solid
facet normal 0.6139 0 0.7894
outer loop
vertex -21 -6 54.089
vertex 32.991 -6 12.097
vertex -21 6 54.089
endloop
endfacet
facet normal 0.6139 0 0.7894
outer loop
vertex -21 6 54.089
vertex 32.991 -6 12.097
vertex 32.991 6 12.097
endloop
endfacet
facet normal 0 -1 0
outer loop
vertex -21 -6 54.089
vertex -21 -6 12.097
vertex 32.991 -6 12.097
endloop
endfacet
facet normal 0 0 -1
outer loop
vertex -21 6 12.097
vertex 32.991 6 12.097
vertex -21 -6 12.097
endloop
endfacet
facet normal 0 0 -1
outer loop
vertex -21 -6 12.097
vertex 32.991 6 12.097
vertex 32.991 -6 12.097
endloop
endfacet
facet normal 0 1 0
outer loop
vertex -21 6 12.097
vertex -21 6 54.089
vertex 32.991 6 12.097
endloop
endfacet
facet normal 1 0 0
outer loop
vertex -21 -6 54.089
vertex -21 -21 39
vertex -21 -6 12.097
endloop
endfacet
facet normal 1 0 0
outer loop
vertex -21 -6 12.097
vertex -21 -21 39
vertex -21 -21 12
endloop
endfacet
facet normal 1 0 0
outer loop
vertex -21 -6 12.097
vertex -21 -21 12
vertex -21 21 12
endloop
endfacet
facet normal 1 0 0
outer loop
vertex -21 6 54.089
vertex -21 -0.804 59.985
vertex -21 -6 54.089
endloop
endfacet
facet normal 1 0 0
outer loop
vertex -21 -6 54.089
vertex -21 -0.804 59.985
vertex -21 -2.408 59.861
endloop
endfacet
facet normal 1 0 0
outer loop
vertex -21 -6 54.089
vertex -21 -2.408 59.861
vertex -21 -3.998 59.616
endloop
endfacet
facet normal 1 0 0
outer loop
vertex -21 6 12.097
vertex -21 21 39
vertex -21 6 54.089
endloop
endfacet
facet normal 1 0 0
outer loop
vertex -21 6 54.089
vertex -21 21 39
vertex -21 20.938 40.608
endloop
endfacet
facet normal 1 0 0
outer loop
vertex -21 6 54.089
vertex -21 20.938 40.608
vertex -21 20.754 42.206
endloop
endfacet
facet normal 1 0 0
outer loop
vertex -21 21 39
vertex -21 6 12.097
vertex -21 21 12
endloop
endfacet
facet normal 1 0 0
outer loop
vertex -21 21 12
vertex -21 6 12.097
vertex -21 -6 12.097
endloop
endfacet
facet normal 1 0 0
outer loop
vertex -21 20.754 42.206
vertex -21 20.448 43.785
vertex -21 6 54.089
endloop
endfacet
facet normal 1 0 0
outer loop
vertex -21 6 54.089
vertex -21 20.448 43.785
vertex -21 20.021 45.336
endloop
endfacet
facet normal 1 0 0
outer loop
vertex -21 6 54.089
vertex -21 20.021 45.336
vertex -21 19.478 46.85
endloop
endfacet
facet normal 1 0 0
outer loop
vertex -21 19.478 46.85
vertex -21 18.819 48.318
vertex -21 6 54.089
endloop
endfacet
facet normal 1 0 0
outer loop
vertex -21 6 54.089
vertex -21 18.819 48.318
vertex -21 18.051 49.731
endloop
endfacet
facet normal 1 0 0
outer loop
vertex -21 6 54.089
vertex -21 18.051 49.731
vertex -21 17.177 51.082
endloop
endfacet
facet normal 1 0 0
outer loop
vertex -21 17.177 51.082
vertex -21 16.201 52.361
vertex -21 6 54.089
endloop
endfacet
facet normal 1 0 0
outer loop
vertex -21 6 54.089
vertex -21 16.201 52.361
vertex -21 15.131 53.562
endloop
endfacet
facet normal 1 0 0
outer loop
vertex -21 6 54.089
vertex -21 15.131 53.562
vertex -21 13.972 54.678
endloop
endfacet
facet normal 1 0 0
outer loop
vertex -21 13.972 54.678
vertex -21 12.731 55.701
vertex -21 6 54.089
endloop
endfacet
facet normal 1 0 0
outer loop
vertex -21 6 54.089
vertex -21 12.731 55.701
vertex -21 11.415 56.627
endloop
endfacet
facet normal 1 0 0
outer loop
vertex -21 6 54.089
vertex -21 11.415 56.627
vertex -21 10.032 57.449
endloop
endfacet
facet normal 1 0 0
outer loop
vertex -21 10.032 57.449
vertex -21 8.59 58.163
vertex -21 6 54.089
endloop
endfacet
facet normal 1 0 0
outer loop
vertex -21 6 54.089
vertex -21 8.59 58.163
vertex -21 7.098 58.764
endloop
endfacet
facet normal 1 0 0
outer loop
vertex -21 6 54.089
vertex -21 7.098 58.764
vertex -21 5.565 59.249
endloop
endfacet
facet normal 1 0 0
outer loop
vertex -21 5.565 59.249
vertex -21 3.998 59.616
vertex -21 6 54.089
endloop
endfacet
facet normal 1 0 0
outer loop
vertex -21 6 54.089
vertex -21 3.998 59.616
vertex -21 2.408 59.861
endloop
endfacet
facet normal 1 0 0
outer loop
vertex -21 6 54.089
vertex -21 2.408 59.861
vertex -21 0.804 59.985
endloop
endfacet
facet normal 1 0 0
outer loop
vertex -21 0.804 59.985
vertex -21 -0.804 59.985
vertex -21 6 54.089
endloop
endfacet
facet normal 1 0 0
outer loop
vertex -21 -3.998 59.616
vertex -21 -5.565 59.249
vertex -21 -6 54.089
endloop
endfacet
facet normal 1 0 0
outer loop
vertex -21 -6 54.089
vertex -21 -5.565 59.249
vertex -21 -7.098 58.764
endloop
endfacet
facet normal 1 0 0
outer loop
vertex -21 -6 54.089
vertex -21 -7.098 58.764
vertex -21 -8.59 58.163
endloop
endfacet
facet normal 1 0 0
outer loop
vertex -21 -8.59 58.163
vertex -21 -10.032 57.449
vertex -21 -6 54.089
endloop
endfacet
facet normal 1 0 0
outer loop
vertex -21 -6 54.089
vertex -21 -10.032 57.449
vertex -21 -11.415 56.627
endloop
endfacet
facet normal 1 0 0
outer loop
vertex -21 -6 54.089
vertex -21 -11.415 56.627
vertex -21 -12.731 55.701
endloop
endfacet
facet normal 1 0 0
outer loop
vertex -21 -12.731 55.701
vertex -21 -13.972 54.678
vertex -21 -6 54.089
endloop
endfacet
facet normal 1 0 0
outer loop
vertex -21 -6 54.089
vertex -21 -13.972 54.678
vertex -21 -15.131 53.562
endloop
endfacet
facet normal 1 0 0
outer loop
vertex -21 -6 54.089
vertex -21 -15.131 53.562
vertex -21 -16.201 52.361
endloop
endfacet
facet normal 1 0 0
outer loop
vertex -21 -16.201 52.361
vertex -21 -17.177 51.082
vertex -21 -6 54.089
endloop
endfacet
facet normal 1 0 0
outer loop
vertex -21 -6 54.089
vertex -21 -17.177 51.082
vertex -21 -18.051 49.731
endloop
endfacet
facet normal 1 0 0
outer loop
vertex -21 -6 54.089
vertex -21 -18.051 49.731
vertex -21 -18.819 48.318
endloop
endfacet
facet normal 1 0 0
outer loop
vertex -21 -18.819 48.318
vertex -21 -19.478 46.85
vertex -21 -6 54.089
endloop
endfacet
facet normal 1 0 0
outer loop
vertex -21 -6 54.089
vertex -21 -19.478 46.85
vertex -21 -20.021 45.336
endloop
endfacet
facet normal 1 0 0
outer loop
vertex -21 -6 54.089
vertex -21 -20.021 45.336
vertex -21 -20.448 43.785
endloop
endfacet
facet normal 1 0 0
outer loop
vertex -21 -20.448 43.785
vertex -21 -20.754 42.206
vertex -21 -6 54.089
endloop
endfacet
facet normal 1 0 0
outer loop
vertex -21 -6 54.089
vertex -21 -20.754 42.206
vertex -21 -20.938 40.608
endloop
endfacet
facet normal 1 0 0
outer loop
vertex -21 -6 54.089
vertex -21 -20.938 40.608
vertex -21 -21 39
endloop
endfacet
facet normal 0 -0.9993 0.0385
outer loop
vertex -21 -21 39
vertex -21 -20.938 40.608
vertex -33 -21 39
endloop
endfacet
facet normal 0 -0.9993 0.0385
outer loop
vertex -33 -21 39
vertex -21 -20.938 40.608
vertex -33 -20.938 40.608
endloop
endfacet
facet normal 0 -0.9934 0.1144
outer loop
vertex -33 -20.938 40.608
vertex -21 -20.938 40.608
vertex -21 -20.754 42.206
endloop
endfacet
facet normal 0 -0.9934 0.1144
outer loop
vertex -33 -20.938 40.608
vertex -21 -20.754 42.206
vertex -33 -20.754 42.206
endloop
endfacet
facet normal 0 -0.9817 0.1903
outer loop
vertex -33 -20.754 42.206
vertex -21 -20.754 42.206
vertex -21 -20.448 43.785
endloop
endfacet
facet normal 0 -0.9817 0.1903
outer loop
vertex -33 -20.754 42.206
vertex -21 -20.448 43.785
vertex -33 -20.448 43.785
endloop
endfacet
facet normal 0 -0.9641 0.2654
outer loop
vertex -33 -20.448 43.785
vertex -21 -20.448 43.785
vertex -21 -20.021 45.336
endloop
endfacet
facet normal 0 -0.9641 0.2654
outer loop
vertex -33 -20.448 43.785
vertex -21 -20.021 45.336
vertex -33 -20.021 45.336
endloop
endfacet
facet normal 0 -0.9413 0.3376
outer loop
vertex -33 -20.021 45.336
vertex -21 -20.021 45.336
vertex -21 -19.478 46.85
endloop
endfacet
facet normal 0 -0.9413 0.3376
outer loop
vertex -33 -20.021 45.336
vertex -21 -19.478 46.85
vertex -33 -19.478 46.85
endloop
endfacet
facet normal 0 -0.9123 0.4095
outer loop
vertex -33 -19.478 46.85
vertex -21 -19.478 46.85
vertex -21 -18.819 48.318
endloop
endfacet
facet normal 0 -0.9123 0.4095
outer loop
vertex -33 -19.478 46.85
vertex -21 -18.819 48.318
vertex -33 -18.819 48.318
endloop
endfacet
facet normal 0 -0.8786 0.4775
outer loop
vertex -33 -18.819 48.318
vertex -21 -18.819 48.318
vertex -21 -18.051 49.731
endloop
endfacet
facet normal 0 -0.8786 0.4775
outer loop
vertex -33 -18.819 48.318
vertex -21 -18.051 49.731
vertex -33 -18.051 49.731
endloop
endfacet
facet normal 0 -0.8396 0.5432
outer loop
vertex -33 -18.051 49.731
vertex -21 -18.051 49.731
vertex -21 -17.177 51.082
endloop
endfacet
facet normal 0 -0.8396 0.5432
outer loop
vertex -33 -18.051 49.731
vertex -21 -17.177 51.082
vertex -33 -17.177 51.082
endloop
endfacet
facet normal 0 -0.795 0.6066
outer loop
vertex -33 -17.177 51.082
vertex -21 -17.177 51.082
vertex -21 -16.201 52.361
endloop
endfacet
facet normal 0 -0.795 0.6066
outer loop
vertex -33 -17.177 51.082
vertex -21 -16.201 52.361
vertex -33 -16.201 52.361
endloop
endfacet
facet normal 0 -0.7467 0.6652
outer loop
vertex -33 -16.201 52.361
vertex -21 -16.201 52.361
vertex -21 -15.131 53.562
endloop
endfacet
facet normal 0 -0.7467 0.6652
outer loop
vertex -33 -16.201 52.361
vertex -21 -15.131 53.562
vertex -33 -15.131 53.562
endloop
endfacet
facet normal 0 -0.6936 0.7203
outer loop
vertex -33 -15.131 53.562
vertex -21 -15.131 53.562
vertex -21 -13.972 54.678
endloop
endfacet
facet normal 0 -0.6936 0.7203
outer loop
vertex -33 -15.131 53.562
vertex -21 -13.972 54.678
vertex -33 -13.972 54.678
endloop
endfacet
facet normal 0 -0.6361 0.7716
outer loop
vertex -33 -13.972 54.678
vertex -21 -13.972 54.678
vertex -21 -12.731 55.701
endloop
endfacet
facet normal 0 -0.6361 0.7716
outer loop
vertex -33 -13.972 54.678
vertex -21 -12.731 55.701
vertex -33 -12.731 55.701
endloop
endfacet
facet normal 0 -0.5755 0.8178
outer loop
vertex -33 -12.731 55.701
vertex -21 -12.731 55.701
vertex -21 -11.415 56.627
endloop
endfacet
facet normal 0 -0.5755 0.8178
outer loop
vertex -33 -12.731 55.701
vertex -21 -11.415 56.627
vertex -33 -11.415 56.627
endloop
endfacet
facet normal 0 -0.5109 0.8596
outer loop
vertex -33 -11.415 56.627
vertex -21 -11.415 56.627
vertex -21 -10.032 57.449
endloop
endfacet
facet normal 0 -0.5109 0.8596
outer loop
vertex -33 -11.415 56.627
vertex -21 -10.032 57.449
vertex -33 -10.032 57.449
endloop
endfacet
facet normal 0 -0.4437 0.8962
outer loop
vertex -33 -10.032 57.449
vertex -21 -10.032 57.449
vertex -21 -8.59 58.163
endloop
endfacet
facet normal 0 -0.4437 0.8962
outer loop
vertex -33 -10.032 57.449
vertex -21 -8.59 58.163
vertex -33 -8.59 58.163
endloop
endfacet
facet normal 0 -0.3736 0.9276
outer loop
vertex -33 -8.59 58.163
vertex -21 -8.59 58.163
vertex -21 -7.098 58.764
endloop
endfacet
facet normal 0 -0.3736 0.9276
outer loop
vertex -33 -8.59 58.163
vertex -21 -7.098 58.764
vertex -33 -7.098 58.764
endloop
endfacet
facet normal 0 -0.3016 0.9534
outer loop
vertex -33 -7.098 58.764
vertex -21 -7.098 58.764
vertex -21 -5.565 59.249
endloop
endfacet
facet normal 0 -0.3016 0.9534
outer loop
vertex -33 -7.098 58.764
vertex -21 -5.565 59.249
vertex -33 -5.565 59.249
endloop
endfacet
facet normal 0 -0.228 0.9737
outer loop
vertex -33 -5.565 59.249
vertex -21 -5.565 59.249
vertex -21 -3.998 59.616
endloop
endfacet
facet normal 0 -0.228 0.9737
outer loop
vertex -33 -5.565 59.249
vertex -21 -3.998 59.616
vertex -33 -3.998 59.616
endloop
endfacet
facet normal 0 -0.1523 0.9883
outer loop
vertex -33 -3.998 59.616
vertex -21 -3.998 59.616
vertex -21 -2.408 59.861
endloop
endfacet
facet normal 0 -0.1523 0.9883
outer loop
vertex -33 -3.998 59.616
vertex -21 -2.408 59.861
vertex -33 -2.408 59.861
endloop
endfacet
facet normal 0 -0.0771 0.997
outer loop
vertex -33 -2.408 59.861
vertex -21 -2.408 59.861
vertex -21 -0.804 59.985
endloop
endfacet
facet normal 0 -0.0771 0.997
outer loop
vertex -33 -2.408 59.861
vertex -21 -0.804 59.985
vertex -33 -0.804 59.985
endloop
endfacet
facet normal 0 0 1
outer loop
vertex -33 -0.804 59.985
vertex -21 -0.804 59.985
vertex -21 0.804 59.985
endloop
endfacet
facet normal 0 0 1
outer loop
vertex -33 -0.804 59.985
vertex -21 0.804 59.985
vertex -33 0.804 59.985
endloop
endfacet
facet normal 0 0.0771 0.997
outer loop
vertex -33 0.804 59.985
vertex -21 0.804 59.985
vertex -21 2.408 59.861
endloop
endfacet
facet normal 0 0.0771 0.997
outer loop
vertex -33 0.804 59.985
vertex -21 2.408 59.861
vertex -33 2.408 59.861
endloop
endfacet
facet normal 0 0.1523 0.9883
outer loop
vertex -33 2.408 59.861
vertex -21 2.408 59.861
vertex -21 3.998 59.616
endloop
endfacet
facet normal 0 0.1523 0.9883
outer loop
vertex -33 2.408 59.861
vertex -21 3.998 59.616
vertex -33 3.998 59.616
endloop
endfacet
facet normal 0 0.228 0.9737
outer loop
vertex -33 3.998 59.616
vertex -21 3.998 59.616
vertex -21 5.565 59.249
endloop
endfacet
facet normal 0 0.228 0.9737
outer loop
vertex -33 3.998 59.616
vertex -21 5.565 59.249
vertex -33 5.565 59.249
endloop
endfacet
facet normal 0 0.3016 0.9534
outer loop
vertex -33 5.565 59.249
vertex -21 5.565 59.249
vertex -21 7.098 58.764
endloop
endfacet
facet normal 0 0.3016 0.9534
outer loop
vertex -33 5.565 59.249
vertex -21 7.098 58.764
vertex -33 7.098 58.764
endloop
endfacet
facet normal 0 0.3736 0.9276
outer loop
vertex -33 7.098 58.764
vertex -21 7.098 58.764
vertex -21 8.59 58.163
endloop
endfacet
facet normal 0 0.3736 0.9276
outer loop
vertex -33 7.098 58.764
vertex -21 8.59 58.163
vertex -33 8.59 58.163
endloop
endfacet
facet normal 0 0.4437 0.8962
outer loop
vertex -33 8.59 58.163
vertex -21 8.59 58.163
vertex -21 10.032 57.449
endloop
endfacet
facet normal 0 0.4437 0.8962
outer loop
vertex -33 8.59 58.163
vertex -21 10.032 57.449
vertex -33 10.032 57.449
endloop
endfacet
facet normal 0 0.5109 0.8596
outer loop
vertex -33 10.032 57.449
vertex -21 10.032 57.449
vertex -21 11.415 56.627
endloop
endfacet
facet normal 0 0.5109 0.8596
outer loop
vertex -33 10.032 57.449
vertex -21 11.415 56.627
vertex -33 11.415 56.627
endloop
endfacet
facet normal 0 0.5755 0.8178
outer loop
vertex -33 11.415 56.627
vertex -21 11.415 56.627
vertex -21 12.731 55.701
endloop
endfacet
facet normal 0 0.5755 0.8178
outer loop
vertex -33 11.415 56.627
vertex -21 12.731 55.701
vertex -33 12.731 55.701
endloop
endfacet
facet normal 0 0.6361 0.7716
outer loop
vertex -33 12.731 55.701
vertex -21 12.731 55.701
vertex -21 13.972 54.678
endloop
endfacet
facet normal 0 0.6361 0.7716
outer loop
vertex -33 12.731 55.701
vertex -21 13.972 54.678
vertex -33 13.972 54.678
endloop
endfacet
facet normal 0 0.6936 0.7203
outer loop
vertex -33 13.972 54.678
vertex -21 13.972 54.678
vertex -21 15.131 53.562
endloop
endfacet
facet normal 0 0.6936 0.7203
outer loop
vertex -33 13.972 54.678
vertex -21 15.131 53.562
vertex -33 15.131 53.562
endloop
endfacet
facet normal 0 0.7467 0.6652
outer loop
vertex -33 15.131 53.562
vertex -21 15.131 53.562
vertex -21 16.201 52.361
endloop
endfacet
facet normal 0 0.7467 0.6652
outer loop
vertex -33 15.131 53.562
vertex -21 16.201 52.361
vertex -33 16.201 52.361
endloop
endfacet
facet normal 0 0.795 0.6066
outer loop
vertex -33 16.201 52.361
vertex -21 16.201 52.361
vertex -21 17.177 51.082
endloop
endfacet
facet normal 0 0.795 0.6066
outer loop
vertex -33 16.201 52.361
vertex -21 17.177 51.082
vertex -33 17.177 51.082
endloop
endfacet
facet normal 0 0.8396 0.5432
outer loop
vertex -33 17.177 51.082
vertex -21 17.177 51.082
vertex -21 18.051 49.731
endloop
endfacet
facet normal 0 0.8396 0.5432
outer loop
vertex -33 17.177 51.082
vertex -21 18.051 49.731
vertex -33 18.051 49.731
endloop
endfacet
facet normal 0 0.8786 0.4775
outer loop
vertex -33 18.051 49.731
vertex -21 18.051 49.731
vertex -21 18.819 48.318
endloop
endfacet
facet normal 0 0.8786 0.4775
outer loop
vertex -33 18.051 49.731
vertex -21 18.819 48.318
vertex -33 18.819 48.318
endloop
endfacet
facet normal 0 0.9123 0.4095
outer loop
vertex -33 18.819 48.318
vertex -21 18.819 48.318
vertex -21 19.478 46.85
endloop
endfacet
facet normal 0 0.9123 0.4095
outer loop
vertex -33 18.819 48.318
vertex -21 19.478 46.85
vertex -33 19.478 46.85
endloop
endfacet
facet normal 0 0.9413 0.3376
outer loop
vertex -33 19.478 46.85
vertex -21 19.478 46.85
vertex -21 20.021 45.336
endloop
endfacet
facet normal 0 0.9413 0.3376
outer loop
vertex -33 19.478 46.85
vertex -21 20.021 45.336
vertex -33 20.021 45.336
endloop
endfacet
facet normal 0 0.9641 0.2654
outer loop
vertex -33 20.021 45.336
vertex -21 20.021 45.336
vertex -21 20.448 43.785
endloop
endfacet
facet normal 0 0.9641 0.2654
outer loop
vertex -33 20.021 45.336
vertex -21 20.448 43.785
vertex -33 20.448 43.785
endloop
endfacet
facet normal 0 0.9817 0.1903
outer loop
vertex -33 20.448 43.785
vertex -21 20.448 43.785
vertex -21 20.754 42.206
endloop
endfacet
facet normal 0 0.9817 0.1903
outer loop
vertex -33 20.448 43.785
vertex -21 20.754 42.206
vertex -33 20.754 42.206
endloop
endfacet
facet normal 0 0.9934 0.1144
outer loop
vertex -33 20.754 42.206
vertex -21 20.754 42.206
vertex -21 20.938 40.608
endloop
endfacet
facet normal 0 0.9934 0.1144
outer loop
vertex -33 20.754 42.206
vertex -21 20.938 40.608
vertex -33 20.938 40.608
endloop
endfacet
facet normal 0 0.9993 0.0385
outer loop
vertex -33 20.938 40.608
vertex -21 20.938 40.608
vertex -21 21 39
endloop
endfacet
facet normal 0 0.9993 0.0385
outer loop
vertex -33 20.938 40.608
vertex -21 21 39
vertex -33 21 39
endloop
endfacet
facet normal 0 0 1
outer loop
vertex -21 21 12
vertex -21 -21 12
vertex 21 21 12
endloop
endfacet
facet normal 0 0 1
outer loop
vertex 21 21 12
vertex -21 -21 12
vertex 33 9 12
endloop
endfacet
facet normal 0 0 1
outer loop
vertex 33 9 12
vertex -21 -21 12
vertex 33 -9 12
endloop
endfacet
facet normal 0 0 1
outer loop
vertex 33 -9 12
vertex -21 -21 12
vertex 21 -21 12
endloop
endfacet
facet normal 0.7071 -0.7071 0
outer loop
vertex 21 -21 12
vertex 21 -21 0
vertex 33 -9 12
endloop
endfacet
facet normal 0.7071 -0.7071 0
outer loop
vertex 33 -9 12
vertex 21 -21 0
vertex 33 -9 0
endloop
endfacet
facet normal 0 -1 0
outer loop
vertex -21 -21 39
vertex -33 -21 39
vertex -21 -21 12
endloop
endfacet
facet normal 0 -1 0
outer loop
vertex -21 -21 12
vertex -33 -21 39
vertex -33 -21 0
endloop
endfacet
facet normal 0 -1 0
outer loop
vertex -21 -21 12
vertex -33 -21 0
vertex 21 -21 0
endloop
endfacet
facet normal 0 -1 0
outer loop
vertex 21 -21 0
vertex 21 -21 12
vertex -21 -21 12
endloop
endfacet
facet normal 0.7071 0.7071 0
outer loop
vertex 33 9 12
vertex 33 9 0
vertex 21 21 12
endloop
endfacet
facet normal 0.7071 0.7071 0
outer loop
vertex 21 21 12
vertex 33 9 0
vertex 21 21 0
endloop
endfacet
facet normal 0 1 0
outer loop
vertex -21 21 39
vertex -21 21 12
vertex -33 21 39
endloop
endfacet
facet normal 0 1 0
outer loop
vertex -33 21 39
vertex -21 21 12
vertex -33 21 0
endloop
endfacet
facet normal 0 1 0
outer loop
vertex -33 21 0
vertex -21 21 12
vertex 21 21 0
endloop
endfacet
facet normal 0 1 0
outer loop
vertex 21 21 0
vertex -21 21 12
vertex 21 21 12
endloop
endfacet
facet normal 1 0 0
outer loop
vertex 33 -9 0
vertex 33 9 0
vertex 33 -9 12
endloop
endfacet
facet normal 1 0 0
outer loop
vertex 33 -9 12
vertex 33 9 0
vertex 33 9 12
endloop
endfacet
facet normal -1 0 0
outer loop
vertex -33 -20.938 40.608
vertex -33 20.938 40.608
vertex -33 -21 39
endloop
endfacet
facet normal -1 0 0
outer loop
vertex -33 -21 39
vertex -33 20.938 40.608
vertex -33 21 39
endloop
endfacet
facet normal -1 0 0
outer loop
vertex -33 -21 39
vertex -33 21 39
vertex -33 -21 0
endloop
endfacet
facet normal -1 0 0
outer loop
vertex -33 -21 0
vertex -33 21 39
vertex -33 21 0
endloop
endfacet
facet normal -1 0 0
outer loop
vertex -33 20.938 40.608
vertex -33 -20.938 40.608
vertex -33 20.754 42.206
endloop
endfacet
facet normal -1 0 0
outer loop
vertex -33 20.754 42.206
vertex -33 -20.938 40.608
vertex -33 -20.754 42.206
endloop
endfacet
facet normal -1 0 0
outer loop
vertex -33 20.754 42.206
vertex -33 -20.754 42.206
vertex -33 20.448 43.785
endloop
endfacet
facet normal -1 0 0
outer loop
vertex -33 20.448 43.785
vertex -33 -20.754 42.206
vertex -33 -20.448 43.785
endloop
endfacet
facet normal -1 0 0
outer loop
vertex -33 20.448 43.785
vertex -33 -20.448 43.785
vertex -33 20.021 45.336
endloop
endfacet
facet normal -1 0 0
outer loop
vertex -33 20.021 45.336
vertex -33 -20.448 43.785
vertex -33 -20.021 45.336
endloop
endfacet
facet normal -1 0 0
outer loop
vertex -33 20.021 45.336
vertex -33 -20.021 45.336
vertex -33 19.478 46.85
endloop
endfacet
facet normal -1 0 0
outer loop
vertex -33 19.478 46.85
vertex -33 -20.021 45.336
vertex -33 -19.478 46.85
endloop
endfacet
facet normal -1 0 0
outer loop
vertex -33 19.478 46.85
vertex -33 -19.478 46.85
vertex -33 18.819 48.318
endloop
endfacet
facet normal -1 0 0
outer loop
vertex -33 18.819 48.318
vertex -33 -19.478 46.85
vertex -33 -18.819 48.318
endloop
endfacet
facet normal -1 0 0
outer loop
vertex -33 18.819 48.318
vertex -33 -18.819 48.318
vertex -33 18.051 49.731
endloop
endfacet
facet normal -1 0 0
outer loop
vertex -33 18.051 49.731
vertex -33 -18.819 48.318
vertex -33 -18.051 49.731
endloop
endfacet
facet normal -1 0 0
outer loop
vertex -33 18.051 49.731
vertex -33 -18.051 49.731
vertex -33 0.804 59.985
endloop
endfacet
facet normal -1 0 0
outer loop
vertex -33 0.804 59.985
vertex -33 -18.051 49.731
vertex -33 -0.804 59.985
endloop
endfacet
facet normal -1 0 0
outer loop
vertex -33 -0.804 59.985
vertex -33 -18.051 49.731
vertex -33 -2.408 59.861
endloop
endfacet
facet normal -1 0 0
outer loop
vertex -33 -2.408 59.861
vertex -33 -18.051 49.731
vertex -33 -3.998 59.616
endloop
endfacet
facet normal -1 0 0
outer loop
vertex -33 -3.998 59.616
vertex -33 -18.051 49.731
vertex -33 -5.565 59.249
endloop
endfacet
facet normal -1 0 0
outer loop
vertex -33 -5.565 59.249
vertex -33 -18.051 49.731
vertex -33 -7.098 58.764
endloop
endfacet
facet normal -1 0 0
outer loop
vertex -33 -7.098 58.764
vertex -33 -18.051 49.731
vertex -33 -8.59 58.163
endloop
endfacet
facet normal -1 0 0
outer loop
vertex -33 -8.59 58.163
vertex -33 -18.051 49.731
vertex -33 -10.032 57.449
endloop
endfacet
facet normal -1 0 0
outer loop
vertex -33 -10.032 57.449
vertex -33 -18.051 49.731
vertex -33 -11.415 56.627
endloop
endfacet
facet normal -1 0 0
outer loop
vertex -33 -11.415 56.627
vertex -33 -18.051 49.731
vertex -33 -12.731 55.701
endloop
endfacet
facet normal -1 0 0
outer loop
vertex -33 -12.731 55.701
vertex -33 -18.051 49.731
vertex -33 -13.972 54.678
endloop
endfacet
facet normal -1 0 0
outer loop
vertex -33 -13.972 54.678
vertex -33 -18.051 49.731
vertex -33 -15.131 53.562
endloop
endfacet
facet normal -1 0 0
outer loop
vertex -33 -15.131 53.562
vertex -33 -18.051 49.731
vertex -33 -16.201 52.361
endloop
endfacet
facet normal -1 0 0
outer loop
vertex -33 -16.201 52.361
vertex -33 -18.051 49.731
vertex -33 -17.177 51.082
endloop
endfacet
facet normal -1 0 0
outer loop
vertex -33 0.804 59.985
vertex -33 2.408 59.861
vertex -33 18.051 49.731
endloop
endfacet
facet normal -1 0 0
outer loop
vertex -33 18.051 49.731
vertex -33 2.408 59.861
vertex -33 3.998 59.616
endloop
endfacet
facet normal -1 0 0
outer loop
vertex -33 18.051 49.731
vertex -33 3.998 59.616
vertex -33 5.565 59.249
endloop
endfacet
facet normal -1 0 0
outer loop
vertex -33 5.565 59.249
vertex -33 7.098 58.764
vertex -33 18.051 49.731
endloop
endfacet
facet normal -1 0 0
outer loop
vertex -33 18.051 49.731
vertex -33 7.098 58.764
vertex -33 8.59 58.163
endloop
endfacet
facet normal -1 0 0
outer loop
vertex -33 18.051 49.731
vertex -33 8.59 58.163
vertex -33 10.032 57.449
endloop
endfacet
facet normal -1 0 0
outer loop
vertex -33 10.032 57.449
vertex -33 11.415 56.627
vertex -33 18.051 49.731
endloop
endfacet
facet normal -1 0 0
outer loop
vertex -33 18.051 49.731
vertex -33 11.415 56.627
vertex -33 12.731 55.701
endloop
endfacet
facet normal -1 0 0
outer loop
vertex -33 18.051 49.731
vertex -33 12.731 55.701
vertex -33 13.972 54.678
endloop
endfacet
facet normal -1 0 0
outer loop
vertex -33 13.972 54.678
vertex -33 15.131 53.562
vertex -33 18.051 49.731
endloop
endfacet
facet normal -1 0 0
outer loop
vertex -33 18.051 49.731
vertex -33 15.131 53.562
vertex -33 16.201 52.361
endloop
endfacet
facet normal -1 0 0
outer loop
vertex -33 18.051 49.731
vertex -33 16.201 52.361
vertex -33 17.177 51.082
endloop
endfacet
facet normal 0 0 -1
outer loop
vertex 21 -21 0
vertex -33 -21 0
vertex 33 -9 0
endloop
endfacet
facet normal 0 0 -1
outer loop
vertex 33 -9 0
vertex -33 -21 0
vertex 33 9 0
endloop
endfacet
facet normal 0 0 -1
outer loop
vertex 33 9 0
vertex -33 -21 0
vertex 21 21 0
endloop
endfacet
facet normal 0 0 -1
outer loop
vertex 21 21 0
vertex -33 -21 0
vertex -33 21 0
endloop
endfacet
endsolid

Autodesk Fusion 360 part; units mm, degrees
sketch "Sketch1" plane through (0, 0, 0) normal (0, 0, 1) x (1, 0, 0)
  line L0 (33, -21) -> (-33, -21)
  line L1 (-33, -21) -> (-33, 21)
  line L2 (-33, 21) -> (33, 21)
  line L3 (33, 21) -> (33, -21)
  line L4 (33, -21) -> (-33, 21) construction
  line L5 (-33, -21) -> (33, 21) construction
  dimension "d1" = 66
  dimension "d2" = 42
extrude "Extrude1" add sketch "Sketch1" along normal blind 12
chamfer "Chamfer1" distance 12 angle 45 2 edges at (33, 21, 6) (33, -21, 6)
sketch "Sketch2" plane through (0, 0, 12) normal (0, 0, 1) x (-1, 0, 0)
  line L0 (-21, 21) -> (-33, 9)
  line L1 (-33, 9) -> (-33, -9)
  line L2 (-33, -9) -> (-21, -21)
  line L3 (-21, -21) -> (33, -21)
  line L4 (33, -21) -> (33, 21)
  line L5 (33, 21) -> (-21, 21)
  line L6 (33, -21) -> (21, -21)
  line L7 (21, -21) -> (21, 21)
  line L8 (21, 21) -> (33, 21)
  line L9 (33, 21) -> (33, -21)
  dimension "d6" = 12
extrude "Extrude2" add sketch "Sketch2" along normal blind 48 contours L3 L4 L5 L6 L7 L8 L9
fillet "Fillet1" radius 21 2 edges at (-27, -21, 60) (-27, 21, 60)
sketch "Sketch3" plane through (0, 0, 12) normal (0, 0, 1) x (-1, 0, 0)
  line L0 (21, -21) -> (21, 21)
  line L1 (21, 21) -> (-21, 21)
  line L2 (-21, 21) -> (-33, 9)
  line L3 (-33, 9) -> (-33, -9)
  line L4 (-33, -9) -> (-21, -21)
  line L5 (-21, -21) -> (21, -21)
sketch "Sketch4" plane through (0, 0, 0) normal (0, 1, 0) x (1, 0, 0)
  line L0 (-21.0093, -54.0965) -> (-21.0093, -12.0965)
  line L1 (-21.0093, -12.0965) -> (32.9907, -12.0965)
  line L2 (32.9907, -12.0965) -> (-21.0093, -54.0965)
  dimension "d10" = 42
  dimension "d11" = 54
extrude "Extrude3" add sketch "Sketch4" along normal mid plane 12
equation "d7 = 60 mm - 12 mm"
equation "d11 = 66 mm - 12 mm"
